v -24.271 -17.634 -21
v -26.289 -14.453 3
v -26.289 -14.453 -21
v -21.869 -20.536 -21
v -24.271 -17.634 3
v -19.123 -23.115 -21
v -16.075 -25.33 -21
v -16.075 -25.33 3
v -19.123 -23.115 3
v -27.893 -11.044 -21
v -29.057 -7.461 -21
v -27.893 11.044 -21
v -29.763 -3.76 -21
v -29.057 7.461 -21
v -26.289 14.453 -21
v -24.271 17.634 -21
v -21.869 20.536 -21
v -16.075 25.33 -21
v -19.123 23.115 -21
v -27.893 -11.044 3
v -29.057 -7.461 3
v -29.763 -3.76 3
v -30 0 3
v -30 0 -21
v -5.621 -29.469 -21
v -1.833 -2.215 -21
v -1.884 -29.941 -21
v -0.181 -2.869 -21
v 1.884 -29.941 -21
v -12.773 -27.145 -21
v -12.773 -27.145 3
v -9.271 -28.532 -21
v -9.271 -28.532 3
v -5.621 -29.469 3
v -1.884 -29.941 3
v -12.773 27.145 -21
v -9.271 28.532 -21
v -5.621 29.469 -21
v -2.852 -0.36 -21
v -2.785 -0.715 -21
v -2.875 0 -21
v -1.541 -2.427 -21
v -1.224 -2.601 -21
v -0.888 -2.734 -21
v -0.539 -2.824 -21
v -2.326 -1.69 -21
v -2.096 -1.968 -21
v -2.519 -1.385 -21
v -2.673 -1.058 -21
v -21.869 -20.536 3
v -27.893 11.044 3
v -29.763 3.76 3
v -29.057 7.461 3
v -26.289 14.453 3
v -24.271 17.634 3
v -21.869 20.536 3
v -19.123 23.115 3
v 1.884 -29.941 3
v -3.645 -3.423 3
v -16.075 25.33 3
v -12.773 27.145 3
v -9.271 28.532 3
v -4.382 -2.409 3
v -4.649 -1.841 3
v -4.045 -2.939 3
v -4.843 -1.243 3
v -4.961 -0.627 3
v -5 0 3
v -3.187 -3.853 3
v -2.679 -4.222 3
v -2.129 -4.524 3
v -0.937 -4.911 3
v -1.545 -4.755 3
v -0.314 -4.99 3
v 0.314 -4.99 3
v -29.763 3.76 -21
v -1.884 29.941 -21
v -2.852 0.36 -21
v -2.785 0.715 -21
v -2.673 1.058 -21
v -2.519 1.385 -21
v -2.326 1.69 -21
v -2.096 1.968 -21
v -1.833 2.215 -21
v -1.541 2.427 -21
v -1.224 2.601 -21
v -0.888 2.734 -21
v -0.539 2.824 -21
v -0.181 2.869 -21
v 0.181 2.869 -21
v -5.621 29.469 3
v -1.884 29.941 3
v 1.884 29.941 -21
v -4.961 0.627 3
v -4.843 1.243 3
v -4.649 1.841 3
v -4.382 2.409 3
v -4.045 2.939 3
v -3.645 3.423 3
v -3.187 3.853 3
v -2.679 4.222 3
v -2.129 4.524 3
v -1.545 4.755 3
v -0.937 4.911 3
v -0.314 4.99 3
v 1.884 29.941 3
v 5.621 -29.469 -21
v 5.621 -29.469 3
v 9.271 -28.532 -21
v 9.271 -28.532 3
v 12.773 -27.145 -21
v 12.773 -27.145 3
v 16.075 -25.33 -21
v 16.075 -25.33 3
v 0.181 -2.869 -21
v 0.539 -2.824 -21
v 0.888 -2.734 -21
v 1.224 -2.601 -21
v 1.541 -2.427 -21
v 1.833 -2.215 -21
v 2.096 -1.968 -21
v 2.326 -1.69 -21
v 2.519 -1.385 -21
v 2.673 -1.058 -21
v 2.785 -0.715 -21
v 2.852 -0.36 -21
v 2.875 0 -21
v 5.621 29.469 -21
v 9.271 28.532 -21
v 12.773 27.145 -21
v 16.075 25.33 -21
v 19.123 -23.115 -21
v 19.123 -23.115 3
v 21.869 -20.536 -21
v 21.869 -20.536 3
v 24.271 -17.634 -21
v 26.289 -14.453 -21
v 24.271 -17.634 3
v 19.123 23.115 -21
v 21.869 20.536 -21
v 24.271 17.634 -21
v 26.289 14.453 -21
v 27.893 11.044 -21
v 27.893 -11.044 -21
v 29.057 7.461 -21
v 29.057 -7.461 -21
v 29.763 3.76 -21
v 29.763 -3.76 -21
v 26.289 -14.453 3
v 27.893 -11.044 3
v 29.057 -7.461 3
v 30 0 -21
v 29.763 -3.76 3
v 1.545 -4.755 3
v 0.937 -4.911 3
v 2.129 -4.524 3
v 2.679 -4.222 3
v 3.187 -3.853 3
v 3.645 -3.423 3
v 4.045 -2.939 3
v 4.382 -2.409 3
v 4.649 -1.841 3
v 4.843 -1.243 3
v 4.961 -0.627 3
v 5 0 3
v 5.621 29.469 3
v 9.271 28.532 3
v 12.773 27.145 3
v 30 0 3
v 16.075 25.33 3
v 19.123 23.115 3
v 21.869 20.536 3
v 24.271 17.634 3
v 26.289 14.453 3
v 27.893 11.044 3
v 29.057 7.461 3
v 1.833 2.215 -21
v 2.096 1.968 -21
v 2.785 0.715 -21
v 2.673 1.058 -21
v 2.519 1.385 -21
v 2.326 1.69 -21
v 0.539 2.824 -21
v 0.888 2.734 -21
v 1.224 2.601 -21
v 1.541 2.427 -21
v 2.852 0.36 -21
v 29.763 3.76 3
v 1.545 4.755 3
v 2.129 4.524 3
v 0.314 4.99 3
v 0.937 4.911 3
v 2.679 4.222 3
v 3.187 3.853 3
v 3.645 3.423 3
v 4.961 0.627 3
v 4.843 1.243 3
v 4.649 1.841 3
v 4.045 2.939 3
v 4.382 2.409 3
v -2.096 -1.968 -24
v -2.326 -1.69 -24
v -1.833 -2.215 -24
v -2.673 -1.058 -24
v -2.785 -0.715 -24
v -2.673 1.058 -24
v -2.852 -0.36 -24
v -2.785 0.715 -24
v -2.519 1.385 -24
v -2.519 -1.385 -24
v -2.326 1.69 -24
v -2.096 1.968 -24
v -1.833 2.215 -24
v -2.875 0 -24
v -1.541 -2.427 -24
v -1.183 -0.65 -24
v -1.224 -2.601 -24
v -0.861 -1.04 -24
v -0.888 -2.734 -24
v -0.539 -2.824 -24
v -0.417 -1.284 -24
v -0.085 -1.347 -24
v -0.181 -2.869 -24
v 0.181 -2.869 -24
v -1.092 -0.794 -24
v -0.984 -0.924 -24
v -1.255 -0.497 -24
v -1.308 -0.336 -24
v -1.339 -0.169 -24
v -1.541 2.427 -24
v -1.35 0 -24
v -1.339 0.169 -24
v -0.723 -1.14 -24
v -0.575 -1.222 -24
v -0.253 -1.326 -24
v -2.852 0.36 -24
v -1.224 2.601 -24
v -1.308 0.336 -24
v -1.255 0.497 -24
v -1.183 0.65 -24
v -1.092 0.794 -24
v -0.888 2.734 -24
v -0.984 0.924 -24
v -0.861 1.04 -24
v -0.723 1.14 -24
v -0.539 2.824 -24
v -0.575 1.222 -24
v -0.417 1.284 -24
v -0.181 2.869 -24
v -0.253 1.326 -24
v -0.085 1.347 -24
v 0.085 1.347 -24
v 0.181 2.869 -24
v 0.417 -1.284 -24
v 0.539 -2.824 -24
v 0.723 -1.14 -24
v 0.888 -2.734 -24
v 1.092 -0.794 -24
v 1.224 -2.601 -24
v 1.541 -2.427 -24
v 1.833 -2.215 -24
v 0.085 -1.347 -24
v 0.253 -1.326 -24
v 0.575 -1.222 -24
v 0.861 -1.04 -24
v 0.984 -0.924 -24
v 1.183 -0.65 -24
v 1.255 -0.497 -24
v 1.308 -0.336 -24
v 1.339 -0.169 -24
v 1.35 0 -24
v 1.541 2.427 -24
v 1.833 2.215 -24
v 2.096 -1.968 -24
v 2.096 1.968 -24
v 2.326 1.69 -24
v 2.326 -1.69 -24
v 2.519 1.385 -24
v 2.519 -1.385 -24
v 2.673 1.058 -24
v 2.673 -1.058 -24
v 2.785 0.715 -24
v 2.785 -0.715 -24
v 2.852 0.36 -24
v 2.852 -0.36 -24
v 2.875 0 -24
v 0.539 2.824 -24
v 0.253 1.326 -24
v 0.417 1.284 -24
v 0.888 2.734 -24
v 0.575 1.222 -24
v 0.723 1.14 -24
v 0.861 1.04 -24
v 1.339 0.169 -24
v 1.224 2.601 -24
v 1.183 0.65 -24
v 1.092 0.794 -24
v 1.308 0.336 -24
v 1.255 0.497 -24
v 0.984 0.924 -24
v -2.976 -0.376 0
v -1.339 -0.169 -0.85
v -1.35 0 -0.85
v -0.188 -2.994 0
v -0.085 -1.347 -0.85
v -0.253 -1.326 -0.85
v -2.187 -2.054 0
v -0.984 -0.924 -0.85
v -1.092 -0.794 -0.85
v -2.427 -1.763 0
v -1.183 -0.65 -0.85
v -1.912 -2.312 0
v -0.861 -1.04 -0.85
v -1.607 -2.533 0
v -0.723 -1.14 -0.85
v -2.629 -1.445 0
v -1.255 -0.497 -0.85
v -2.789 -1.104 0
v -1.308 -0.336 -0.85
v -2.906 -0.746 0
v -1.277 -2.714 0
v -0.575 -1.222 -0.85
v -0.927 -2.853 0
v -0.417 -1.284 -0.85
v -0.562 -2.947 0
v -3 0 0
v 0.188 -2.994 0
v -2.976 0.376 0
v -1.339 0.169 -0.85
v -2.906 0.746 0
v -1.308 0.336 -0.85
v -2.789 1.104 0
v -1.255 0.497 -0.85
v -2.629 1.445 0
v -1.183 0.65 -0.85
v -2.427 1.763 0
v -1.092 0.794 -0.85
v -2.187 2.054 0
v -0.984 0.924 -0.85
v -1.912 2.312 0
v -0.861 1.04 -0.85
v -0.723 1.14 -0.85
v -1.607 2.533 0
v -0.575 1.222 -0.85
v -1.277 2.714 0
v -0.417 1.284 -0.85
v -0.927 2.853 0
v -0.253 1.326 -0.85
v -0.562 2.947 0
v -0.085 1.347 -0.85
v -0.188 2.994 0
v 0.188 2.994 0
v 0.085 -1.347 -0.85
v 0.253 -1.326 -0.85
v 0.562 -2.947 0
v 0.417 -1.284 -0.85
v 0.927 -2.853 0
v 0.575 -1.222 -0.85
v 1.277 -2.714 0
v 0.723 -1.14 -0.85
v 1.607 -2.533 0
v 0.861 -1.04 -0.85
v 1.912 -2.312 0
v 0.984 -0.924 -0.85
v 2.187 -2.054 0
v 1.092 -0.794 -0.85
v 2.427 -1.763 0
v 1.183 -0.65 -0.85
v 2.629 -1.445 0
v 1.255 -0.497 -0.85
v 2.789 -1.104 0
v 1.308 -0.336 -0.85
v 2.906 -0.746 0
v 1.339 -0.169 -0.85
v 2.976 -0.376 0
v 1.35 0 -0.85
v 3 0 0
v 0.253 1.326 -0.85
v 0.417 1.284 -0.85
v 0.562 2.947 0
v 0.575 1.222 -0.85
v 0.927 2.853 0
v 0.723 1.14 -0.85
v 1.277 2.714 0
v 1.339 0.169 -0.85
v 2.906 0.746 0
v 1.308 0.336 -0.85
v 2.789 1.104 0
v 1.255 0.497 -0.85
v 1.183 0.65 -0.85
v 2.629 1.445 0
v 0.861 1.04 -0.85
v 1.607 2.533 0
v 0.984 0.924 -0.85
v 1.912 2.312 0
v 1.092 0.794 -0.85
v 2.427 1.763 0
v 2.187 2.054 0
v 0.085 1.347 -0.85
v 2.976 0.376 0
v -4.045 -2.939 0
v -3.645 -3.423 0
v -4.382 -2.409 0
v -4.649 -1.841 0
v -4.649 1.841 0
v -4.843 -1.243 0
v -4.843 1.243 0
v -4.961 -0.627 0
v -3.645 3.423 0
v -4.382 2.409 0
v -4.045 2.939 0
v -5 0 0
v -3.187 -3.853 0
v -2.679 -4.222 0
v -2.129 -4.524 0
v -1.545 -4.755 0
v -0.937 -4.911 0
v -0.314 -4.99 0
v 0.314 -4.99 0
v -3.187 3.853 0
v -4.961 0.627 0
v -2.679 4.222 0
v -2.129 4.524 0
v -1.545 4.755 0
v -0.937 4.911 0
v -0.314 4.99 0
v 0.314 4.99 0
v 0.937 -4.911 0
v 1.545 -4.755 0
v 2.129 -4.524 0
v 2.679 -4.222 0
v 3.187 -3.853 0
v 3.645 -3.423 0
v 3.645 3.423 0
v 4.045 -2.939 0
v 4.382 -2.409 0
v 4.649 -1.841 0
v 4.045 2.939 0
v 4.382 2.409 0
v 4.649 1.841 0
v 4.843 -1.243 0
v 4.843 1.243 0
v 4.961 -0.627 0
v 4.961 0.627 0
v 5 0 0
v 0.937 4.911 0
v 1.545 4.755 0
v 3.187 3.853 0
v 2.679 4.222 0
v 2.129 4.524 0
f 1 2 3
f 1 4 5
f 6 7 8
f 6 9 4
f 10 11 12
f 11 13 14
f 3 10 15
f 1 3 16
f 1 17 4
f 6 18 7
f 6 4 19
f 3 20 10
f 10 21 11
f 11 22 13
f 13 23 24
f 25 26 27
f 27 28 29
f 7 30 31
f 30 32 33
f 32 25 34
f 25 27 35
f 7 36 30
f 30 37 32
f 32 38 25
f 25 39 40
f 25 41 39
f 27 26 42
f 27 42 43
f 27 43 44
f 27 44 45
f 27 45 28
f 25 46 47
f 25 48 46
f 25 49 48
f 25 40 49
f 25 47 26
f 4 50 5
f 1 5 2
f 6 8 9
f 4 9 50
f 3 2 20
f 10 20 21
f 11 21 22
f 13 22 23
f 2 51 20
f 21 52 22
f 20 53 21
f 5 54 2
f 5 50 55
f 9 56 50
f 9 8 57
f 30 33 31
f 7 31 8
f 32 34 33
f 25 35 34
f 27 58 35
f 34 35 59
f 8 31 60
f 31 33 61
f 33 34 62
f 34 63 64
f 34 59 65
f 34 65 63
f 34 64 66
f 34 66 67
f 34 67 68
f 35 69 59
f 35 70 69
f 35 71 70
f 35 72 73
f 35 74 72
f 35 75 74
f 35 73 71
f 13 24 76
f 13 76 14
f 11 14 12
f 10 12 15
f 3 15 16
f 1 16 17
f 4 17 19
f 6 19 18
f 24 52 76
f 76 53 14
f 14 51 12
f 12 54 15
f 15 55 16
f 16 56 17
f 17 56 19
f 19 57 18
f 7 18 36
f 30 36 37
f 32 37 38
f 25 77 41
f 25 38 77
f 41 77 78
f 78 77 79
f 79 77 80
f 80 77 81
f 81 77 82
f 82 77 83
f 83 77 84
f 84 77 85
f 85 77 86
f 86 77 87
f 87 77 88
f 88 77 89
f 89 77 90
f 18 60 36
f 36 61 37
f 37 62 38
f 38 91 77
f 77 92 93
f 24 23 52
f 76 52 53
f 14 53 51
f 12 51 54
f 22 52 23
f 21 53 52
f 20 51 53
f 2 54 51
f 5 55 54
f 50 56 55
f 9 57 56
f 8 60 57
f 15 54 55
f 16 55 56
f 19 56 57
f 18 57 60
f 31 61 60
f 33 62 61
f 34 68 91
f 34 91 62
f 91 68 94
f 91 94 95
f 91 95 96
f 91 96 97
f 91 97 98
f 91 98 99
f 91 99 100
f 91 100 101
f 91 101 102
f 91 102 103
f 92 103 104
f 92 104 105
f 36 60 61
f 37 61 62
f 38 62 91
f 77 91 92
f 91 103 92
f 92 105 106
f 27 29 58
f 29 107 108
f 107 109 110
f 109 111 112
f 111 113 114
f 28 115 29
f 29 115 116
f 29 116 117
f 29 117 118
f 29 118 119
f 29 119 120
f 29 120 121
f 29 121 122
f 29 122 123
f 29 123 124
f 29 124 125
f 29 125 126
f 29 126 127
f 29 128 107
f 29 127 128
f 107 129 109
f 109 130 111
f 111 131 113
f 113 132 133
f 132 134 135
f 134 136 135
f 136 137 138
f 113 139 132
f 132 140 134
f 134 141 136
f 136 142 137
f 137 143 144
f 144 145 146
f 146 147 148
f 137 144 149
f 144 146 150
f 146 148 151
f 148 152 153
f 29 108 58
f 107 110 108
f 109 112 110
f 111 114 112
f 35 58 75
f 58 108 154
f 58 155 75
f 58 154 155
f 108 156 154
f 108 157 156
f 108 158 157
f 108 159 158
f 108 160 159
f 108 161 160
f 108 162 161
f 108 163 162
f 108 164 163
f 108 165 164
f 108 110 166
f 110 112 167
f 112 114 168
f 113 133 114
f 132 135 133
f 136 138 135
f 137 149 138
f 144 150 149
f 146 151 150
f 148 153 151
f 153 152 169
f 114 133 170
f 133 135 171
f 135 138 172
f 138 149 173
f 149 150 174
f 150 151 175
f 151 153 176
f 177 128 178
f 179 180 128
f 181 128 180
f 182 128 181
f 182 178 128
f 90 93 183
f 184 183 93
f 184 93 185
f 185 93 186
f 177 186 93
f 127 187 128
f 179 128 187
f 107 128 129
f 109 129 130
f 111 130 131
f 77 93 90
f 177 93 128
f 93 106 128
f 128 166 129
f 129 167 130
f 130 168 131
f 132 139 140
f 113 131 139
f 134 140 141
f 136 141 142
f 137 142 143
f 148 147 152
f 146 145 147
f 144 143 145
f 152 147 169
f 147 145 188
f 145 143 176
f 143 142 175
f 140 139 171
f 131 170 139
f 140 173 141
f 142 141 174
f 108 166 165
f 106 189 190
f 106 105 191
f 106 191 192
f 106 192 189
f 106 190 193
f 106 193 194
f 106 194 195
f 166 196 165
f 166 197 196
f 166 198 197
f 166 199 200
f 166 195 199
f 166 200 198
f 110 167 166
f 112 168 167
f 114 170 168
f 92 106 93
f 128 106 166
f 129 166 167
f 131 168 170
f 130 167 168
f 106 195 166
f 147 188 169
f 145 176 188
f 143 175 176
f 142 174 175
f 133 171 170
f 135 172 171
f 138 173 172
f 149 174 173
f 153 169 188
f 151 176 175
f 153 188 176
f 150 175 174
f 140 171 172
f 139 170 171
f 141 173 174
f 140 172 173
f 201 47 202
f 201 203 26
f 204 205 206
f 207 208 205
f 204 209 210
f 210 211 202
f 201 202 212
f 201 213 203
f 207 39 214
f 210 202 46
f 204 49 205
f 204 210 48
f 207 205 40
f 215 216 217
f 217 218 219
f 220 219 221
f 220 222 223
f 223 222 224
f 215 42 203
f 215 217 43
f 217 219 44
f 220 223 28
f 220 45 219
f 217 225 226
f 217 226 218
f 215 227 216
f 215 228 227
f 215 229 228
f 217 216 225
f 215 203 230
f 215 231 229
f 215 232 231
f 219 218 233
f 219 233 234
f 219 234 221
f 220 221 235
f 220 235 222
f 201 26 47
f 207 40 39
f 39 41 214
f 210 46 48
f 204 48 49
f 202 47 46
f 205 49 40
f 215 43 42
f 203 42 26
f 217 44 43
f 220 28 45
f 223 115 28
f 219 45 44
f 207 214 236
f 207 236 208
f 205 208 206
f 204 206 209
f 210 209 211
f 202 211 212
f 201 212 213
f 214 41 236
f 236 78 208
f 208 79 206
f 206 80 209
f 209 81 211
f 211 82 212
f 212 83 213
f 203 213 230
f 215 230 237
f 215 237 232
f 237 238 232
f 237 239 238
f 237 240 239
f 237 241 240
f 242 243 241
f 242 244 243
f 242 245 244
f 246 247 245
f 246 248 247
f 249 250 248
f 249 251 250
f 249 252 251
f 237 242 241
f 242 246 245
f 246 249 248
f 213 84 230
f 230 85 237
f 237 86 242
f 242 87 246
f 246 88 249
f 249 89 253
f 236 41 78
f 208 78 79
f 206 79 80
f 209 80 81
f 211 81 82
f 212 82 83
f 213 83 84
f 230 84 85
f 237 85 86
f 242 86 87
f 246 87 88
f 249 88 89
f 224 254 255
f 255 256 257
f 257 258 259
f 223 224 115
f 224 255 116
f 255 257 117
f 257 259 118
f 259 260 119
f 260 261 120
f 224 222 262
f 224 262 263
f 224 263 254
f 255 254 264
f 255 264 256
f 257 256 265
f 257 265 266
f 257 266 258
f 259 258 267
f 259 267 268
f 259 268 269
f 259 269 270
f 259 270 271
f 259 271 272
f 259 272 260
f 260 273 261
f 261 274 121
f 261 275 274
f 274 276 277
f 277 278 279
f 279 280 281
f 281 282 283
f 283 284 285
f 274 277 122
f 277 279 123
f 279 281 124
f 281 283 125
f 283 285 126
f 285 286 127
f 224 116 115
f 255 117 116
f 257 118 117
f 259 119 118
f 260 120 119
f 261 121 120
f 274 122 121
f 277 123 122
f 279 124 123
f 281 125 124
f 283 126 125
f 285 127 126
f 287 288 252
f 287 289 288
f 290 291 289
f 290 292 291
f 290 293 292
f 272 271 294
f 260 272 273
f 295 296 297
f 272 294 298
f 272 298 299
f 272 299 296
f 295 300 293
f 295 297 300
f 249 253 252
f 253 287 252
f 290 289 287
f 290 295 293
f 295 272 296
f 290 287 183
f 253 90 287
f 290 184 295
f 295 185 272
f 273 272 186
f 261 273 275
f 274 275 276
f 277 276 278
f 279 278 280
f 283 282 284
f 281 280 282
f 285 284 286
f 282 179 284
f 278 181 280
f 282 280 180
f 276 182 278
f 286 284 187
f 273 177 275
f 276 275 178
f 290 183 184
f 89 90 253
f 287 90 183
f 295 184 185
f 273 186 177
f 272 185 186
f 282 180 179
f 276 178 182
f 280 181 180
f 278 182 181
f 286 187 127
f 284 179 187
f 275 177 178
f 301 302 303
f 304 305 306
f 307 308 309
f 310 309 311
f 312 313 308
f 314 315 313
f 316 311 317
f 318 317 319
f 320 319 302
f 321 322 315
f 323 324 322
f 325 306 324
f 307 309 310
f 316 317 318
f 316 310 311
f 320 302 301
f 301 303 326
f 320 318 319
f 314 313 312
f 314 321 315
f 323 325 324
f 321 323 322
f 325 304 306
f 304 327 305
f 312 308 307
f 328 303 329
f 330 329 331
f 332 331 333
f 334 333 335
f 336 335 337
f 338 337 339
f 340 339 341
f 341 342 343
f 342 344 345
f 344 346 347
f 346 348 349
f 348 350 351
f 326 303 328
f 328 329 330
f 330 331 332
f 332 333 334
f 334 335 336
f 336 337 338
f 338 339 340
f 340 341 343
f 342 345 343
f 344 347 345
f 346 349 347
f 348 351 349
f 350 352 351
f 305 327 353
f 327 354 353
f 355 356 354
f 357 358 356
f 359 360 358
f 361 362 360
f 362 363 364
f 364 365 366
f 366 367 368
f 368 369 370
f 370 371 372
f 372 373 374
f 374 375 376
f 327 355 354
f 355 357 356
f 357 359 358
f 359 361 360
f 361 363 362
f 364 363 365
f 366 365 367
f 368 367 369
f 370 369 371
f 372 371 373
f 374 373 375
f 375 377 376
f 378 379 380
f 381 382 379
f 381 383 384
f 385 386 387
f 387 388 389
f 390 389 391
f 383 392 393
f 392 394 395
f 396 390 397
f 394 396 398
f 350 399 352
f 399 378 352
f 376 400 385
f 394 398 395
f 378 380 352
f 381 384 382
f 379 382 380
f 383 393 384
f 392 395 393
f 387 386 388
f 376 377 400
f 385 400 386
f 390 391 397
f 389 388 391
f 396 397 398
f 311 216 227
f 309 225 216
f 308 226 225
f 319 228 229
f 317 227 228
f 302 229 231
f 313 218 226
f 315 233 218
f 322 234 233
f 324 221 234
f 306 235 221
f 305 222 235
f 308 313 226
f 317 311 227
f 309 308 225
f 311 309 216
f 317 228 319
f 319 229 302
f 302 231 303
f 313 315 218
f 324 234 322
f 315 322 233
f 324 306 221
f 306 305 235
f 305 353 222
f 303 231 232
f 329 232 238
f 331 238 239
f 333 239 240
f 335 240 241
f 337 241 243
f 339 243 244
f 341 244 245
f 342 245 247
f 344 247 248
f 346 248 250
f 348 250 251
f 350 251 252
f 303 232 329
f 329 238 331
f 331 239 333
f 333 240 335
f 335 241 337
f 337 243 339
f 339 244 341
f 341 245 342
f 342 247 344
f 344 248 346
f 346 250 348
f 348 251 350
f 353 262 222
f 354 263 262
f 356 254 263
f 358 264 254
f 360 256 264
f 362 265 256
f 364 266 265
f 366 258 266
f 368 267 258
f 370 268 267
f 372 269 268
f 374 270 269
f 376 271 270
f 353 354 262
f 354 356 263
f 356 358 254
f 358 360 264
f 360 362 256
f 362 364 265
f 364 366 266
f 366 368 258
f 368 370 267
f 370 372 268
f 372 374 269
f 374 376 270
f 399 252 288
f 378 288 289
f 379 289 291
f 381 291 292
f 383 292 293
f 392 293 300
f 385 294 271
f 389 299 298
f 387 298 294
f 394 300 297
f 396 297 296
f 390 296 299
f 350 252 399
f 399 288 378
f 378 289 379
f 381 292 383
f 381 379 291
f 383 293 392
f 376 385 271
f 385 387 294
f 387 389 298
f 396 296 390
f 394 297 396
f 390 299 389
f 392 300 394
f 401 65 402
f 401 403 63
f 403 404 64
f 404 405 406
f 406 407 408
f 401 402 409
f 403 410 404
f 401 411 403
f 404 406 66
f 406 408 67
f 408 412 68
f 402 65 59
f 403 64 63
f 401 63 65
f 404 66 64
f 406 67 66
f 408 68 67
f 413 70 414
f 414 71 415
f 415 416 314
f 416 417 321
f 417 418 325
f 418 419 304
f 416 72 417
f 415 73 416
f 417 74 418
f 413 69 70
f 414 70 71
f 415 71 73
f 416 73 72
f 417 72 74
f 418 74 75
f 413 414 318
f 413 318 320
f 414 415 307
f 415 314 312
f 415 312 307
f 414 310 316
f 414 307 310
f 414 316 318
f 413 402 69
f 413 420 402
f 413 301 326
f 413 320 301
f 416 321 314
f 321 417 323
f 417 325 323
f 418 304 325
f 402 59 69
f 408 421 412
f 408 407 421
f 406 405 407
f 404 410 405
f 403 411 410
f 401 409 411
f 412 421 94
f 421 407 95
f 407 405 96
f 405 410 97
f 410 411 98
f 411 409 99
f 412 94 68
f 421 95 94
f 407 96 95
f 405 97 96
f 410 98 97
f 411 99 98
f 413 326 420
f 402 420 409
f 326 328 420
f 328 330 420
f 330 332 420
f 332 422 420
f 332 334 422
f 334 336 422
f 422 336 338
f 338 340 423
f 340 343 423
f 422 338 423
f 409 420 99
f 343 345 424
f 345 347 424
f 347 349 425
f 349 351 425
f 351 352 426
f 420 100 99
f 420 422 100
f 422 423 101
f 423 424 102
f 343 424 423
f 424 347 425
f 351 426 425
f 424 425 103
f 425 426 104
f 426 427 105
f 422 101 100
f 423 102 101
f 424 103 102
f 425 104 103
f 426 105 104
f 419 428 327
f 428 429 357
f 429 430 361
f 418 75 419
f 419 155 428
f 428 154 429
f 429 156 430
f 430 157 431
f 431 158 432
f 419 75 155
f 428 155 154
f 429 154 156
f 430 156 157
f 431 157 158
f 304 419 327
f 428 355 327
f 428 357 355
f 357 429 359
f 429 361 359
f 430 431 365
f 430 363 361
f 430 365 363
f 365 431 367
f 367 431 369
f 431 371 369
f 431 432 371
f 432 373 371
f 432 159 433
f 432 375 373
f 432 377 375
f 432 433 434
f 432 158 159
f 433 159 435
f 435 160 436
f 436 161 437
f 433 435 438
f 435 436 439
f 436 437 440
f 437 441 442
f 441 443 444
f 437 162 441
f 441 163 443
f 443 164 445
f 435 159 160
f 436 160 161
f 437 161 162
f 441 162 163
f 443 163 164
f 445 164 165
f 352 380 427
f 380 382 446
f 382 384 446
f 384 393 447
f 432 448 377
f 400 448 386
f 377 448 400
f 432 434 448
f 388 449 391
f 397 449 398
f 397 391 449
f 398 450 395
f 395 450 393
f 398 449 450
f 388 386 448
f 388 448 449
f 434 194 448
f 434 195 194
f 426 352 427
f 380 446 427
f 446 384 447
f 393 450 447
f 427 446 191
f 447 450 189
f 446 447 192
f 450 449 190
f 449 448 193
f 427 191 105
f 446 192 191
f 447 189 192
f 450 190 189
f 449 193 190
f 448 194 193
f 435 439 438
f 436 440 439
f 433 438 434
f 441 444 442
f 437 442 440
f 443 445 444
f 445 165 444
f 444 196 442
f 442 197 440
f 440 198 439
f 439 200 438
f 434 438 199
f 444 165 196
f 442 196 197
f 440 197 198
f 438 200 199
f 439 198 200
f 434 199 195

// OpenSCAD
$fn = 50;


difference() {
	union() {
		translate(v = [0, 0, -21.0000000000]) {
			cylinder(h = 24, r = 30.0000000000);
		}
		#translate(v = [0, 0, -24.0000000000]) {
			cylinder(h = 24, r = 2.8750000000);
		}
	}
	union() {
		translate(v = [0, 0, 0]) {
			rotate(a = [0, 0, 0]) {
				difference() {
					union() {
						translate(v = [0, 0, -24.0000000000]) {
							cylinder(h = 24, r = 1.0000000000);
						}
						translate(v = [0, 0, -0.8500000000]) {
							cylinder(h = 0.8500000000, r1 = 1.3500000000, r2 = 3.0000000000);
						}
						translate(v = [0, 0, -24.0000000000]) {
							cylinder(h = 24, r = 1.3500000000);
						}
						translate(v = [0, 0, -24.0000000000]) {
							cylinder(h = 24, r = 1.0000000000);
						}
					}
					union();
				}
			}
		}
		#cylinder(h = 3, r = 5.0000000000);
	}
}
